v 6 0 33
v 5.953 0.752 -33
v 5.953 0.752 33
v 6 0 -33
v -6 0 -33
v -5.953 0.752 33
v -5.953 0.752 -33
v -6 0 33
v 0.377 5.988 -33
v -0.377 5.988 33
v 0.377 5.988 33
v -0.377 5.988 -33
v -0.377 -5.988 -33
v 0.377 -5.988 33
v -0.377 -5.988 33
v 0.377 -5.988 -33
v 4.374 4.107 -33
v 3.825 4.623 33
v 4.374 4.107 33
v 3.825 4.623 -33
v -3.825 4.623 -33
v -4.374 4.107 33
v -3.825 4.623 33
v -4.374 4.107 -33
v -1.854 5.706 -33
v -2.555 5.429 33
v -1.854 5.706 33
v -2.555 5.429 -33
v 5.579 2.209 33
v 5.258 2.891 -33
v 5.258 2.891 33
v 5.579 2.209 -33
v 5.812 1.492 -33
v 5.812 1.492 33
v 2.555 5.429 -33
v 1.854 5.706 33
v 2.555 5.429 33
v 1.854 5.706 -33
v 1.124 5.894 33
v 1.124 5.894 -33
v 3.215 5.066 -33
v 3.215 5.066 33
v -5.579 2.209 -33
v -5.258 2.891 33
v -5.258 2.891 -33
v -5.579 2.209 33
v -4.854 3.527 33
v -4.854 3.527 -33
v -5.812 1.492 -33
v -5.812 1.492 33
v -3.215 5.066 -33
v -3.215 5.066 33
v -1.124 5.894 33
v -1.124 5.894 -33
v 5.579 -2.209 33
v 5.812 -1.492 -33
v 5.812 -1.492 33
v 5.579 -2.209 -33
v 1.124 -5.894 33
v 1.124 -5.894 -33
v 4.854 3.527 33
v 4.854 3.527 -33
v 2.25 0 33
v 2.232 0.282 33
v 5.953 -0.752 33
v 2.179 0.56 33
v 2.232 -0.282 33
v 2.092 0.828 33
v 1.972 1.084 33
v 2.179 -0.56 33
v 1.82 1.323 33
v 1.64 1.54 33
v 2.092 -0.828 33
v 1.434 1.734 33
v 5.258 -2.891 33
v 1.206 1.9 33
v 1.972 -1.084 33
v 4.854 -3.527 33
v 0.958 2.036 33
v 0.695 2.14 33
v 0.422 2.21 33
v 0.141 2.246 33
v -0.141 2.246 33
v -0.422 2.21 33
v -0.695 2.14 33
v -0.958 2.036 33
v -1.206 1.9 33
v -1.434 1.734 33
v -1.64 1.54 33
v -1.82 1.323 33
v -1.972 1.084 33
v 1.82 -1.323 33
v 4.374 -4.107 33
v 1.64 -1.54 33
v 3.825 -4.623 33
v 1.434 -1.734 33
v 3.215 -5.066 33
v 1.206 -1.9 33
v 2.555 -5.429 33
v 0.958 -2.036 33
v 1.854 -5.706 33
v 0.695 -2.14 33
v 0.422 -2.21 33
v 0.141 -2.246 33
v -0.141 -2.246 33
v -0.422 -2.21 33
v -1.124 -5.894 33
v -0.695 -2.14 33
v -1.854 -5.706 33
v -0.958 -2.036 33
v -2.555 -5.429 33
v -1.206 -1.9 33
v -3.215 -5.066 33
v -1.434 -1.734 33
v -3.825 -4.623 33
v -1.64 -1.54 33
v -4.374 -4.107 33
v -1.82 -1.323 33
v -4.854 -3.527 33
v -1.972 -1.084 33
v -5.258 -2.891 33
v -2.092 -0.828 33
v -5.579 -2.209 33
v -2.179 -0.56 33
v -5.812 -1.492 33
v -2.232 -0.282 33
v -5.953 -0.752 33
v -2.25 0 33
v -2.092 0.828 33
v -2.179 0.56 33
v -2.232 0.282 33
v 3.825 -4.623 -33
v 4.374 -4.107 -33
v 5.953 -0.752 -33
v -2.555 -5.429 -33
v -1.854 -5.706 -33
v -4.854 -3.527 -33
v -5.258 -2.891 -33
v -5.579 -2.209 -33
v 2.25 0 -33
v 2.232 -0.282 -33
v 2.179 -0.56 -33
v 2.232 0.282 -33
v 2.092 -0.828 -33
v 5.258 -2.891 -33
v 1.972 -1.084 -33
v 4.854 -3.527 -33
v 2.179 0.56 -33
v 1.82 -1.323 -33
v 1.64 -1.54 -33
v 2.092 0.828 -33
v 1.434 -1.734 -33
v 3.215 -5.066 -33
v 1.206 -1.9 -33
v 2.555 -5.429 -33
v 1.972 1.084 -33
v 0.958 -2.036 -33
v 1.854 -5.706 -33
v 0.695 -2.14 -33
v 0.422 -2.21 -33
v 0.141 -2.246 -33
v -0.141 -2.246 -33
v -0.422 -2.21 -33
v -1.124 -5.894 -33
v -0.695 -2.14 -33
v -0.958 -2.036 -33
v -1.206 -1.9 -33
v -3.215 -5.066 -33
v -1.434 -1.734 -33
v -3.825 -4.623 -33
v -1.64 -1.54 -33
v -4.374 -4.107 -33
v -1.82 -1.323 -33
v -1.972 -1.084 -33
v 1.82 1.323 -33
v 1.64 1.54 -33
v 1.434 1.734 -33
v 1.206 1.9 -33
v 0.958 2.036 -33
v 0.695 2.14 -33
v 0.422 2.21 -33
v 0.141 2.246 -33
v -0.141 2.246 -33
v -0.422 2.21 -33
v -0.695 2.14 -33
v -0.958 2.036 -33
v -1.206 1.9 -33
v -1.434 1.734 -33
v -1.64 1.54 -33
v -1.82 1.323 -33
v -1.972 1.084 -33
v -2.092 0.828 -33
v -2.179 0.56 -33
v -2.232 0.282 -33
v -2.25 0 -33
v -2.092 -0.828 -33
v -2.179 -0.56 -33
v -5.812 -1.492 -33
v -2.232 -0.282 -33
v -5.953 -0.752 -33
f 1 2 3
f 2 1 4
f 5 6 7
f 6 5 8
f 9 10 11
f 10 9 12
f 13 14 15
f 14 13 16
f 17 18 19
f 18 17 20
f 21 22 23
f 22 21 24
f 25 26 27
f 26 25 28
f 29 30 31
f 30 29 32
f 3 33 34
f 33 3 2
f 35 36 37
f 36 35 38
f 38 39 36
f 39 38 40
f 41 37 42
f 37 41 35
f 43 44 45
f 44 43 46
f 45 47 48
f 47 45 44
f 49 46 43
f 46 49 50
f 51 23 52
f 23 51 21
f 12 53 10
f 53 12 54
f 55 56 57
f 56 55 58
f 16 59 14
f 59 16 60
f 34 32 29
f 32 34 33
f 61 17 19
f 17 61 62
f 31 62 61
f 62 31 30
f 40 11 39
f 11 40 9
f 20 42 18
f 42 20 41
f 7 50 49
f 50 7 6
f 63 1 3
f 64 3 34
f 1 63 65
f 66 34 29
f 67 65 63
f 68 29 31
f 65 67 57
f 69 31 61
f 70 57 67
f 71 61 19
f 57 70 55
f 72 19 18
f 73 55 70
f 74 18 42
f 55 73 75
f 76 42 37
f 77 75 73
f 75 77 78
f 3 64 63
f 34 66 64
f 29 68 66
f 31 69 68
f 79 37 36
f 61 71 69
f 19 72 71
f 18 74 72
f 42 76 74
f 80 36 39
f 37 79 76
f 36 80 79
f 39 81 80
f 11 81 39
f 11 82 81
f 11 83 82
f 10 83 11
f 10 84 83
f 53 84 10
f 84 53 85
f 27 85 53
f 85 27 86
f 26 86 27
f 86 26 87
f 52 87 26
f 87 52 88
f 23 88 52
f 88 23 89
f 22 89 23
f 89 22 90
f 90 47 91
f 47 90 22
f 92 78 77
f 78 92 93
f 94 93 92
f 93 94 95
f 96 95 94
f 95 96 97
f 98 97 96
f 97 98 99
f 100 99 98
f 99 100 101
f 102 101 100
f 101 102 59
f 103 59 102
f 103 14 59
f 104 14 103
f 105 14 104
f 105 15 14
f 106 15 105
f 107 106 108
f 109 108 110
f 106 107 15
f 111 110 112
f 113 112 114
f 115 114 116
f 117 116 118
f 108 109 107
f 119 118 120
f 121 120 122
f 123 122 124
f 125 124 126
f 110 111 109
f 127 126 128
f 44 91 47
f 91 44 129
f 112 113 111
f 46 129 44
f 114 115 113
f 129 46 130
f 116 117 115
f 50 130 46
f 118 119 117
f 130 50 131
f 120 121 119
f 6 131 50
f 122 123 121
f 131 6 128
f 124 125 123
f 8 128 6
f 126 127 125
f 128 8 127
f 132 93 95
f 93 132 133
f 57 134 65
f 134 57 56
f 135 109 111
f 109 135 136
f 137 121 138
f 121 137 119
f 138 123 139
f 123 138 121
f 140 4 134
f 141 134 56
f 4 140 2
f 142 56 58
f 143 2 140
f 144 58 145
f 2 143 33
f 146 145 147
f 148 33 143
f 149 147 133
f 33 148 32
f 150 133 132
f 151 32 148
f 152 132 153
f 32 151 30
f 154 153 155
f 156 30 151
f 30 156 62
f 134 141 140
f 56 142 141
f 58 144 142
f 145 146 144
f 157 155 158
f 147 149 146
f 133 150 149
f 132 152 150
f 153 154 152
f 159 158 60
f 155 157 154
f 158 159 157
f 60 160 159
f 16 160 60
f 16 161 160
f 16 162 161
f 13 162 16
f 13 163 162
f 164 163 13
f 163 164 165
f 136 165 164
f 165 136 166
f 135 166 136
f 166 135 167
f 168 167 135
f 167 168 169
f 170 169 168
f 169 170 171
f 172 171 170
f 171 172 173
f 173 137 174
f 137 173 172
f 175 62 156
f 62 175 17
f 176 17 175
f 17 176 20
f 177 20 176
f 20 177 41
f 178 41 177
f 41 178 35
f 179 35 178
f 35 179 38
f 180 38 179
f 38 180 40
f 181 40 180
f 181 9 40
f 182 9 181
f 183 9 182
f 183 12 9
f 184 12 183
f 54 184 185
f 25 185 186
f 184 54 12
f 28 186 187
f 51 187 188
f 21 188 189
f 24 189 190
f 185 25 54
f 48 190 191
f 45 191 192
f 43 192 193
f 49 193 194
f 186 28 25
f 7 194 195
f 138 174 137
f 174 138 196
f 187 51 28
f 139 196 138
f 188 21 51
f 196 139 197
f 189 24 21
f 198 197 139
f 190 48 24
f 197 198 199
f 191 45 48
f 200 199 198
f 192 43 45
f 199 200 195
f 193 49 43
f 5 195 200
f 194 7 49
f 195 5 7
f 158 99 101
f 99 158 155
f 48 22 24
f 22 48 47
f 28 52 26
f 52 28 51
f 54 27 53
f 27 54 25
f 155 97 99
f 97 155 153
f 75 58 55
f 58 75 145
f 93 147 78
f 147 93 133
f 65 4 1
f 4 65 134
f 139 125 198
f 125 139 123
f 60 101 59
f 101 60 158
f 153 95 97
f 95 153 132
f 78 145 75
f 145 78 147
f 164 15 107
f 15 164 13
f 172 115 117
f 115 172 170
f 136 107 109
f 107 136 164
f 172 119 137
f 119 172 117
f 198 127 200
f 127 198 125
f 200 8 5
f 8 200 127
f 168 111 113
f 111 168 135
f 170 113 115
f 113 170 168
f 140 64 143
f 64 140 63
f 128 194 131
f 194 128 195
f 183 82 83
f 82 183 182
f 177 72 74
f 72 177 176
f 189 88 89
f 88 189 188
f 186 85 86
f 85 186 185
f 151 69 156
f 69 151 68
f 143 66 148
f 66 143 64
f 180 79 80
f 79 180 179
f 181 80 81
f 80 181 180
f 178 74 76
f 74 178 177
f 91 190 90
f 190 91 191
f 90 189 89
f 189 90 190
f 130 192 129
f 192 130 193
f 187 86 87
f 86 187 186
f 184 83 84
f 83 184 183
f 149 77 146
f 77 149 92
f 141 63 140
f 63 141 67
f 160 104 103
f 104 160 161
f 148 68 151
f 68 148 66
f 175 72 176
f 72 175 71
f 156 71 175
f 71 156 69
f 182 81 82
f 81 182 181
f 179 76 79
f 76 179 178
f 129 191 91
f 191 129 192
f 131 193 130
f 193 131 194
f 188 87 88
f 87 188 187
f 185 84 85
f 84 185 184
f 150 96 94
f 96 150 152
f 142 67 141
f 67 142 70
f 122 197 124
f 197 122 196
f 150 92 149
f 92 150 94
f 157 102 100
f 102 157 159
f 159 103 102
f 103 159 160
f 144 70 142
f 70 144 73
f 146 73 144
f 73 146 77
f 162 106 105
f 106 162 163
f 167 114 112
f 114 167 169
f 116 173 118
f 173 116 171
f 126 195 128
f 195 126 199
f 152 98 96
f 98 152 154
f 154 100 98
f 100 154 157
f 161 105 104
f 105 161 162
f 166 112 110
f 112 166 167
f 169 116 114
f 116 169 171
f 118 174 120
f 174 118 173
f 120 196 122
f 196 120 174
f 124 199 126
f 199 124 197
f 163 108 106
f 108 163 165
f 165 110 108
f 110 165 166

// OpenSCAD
$fn = 50;


difference() {
	union() {
		translate(v = [0, 0, -33.0000000000]) {
			cylinder(h = 66, r = 6.0000000000);
		}
	}
	union() {
		translate(v = [0, 0, -100.0000000000]) {
			cylinder(h = 200, r = 2.2500000000);
		}
	}
}
